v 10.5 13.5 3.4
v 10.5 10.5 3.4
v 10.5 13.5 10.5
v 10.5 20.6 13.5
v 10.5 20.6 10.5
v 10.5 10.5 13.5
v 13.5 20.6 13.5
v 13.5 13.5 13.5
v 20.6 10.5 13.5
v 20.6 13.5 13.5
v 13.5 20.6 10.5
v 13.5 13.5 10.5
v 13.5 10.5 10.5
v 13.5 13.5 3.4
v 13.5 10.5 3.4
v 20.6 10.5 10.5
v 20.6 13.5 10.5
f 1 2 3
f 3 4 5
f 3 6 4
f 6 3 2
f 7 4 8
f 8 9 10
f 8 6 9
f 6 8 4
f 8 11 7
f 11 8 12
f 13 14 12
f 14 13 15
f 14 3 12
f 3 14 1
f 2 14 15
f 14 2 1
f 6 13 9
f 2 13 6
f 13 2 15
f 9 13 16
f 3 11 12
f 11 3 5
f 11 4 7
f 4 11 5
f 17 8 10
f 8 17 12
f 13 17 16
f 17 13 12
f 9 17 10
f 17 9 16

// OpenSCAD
piezoDiameter = 12;
piezo2Diameter = 10;
piezoH  = 0.4;
piezoH2 = 0.4;
clearance = 12;
magnetDiameter=6;
magnetH = 3;
h = 3+piezoH;
heightClearance = 0.4;

wireHoleHeight = 2;
wireHoleSide   = 2;
tripodLen      = 3;
tripodDeltaH   = 1;

mid = (piezoDiameter + clearance) / 2;

showTripod     = true;
showStage      = false;
tripodCylinder = false;
   
   
  
module piezo()
{
     difference()
    {
        cube([piezoDiameter + clearance, 
              piezoDiameter + clearance, h]);
        
        translate([ mid, mid , h - piezoH])
        cylinder(d=piezoDiameter, h=piezoH, $fn=100);    

        translate([ mid, mid , h - piezoH - piezoH2])
        cylinder(d=piezo2Diameter, h=piezoH, $fn=100);    
        
        translate([mid, mid, 0])
        cylinder(d=magnetDiameter, h=magnetH, $fn=100);
        
        translate([mid - wireHoleSide/2, 
                   clearance + piezoDiameter - 10, 
                   h - wireHoleHeight - heightClearance])
        cube([wireHoleSide, 10, wireHoleSide]);
    }
}

module stick()
{
    if (tripodCylinder)
    {
        color("red")
        translate([mid, mid, h])
        cylinder(d=tripodLen,h=mid - h, $fn=100);
    }
    else
    {
        color("red")
        translate([mid, mid, (mid+h)/2 + tripodLen/4])
        cube([tripodLen, tripodLen, mid - h + tripodLen/2], center=true);
    }
}

module tripod()
{
    stick();
    translate([0, piezoDiameter + clearance, 0])
    rotate(90, [1,0,0])
    stick();

    translate([piezoDiameter + clearance, 0, 0])
    rotate(-90, [0,1,0])
    translate([mid, mid, 0])
    rotate(-90, [0,0,1])
    translate([-mid, -mid, 0])
    stick();
}

module stage()
{
difference()
{
union()
{
piezo();


translate([0, piezoDiameter + clearance, 0])
rotate(90, [1,0,0])
piezo();

translate([piezoDiameter + clearance, 0, 0])
rotate(-90, [0,1,0])
translate([mid, mid, 0])
rotate(-90, [0,0,1])
translate([-mid, -mid, 0])
piezo();
}
translate([mid - wireHoleSide/2, 
           clearance + piezoDiameter - 10, 
           h - wireHoleHeight - heightClearance])
cube([wireHoleSide, 10, wireHoleSide]);
}
}

if (showStage)
{
    stage();
}
if (showTripod)
{
    tripod();
}
